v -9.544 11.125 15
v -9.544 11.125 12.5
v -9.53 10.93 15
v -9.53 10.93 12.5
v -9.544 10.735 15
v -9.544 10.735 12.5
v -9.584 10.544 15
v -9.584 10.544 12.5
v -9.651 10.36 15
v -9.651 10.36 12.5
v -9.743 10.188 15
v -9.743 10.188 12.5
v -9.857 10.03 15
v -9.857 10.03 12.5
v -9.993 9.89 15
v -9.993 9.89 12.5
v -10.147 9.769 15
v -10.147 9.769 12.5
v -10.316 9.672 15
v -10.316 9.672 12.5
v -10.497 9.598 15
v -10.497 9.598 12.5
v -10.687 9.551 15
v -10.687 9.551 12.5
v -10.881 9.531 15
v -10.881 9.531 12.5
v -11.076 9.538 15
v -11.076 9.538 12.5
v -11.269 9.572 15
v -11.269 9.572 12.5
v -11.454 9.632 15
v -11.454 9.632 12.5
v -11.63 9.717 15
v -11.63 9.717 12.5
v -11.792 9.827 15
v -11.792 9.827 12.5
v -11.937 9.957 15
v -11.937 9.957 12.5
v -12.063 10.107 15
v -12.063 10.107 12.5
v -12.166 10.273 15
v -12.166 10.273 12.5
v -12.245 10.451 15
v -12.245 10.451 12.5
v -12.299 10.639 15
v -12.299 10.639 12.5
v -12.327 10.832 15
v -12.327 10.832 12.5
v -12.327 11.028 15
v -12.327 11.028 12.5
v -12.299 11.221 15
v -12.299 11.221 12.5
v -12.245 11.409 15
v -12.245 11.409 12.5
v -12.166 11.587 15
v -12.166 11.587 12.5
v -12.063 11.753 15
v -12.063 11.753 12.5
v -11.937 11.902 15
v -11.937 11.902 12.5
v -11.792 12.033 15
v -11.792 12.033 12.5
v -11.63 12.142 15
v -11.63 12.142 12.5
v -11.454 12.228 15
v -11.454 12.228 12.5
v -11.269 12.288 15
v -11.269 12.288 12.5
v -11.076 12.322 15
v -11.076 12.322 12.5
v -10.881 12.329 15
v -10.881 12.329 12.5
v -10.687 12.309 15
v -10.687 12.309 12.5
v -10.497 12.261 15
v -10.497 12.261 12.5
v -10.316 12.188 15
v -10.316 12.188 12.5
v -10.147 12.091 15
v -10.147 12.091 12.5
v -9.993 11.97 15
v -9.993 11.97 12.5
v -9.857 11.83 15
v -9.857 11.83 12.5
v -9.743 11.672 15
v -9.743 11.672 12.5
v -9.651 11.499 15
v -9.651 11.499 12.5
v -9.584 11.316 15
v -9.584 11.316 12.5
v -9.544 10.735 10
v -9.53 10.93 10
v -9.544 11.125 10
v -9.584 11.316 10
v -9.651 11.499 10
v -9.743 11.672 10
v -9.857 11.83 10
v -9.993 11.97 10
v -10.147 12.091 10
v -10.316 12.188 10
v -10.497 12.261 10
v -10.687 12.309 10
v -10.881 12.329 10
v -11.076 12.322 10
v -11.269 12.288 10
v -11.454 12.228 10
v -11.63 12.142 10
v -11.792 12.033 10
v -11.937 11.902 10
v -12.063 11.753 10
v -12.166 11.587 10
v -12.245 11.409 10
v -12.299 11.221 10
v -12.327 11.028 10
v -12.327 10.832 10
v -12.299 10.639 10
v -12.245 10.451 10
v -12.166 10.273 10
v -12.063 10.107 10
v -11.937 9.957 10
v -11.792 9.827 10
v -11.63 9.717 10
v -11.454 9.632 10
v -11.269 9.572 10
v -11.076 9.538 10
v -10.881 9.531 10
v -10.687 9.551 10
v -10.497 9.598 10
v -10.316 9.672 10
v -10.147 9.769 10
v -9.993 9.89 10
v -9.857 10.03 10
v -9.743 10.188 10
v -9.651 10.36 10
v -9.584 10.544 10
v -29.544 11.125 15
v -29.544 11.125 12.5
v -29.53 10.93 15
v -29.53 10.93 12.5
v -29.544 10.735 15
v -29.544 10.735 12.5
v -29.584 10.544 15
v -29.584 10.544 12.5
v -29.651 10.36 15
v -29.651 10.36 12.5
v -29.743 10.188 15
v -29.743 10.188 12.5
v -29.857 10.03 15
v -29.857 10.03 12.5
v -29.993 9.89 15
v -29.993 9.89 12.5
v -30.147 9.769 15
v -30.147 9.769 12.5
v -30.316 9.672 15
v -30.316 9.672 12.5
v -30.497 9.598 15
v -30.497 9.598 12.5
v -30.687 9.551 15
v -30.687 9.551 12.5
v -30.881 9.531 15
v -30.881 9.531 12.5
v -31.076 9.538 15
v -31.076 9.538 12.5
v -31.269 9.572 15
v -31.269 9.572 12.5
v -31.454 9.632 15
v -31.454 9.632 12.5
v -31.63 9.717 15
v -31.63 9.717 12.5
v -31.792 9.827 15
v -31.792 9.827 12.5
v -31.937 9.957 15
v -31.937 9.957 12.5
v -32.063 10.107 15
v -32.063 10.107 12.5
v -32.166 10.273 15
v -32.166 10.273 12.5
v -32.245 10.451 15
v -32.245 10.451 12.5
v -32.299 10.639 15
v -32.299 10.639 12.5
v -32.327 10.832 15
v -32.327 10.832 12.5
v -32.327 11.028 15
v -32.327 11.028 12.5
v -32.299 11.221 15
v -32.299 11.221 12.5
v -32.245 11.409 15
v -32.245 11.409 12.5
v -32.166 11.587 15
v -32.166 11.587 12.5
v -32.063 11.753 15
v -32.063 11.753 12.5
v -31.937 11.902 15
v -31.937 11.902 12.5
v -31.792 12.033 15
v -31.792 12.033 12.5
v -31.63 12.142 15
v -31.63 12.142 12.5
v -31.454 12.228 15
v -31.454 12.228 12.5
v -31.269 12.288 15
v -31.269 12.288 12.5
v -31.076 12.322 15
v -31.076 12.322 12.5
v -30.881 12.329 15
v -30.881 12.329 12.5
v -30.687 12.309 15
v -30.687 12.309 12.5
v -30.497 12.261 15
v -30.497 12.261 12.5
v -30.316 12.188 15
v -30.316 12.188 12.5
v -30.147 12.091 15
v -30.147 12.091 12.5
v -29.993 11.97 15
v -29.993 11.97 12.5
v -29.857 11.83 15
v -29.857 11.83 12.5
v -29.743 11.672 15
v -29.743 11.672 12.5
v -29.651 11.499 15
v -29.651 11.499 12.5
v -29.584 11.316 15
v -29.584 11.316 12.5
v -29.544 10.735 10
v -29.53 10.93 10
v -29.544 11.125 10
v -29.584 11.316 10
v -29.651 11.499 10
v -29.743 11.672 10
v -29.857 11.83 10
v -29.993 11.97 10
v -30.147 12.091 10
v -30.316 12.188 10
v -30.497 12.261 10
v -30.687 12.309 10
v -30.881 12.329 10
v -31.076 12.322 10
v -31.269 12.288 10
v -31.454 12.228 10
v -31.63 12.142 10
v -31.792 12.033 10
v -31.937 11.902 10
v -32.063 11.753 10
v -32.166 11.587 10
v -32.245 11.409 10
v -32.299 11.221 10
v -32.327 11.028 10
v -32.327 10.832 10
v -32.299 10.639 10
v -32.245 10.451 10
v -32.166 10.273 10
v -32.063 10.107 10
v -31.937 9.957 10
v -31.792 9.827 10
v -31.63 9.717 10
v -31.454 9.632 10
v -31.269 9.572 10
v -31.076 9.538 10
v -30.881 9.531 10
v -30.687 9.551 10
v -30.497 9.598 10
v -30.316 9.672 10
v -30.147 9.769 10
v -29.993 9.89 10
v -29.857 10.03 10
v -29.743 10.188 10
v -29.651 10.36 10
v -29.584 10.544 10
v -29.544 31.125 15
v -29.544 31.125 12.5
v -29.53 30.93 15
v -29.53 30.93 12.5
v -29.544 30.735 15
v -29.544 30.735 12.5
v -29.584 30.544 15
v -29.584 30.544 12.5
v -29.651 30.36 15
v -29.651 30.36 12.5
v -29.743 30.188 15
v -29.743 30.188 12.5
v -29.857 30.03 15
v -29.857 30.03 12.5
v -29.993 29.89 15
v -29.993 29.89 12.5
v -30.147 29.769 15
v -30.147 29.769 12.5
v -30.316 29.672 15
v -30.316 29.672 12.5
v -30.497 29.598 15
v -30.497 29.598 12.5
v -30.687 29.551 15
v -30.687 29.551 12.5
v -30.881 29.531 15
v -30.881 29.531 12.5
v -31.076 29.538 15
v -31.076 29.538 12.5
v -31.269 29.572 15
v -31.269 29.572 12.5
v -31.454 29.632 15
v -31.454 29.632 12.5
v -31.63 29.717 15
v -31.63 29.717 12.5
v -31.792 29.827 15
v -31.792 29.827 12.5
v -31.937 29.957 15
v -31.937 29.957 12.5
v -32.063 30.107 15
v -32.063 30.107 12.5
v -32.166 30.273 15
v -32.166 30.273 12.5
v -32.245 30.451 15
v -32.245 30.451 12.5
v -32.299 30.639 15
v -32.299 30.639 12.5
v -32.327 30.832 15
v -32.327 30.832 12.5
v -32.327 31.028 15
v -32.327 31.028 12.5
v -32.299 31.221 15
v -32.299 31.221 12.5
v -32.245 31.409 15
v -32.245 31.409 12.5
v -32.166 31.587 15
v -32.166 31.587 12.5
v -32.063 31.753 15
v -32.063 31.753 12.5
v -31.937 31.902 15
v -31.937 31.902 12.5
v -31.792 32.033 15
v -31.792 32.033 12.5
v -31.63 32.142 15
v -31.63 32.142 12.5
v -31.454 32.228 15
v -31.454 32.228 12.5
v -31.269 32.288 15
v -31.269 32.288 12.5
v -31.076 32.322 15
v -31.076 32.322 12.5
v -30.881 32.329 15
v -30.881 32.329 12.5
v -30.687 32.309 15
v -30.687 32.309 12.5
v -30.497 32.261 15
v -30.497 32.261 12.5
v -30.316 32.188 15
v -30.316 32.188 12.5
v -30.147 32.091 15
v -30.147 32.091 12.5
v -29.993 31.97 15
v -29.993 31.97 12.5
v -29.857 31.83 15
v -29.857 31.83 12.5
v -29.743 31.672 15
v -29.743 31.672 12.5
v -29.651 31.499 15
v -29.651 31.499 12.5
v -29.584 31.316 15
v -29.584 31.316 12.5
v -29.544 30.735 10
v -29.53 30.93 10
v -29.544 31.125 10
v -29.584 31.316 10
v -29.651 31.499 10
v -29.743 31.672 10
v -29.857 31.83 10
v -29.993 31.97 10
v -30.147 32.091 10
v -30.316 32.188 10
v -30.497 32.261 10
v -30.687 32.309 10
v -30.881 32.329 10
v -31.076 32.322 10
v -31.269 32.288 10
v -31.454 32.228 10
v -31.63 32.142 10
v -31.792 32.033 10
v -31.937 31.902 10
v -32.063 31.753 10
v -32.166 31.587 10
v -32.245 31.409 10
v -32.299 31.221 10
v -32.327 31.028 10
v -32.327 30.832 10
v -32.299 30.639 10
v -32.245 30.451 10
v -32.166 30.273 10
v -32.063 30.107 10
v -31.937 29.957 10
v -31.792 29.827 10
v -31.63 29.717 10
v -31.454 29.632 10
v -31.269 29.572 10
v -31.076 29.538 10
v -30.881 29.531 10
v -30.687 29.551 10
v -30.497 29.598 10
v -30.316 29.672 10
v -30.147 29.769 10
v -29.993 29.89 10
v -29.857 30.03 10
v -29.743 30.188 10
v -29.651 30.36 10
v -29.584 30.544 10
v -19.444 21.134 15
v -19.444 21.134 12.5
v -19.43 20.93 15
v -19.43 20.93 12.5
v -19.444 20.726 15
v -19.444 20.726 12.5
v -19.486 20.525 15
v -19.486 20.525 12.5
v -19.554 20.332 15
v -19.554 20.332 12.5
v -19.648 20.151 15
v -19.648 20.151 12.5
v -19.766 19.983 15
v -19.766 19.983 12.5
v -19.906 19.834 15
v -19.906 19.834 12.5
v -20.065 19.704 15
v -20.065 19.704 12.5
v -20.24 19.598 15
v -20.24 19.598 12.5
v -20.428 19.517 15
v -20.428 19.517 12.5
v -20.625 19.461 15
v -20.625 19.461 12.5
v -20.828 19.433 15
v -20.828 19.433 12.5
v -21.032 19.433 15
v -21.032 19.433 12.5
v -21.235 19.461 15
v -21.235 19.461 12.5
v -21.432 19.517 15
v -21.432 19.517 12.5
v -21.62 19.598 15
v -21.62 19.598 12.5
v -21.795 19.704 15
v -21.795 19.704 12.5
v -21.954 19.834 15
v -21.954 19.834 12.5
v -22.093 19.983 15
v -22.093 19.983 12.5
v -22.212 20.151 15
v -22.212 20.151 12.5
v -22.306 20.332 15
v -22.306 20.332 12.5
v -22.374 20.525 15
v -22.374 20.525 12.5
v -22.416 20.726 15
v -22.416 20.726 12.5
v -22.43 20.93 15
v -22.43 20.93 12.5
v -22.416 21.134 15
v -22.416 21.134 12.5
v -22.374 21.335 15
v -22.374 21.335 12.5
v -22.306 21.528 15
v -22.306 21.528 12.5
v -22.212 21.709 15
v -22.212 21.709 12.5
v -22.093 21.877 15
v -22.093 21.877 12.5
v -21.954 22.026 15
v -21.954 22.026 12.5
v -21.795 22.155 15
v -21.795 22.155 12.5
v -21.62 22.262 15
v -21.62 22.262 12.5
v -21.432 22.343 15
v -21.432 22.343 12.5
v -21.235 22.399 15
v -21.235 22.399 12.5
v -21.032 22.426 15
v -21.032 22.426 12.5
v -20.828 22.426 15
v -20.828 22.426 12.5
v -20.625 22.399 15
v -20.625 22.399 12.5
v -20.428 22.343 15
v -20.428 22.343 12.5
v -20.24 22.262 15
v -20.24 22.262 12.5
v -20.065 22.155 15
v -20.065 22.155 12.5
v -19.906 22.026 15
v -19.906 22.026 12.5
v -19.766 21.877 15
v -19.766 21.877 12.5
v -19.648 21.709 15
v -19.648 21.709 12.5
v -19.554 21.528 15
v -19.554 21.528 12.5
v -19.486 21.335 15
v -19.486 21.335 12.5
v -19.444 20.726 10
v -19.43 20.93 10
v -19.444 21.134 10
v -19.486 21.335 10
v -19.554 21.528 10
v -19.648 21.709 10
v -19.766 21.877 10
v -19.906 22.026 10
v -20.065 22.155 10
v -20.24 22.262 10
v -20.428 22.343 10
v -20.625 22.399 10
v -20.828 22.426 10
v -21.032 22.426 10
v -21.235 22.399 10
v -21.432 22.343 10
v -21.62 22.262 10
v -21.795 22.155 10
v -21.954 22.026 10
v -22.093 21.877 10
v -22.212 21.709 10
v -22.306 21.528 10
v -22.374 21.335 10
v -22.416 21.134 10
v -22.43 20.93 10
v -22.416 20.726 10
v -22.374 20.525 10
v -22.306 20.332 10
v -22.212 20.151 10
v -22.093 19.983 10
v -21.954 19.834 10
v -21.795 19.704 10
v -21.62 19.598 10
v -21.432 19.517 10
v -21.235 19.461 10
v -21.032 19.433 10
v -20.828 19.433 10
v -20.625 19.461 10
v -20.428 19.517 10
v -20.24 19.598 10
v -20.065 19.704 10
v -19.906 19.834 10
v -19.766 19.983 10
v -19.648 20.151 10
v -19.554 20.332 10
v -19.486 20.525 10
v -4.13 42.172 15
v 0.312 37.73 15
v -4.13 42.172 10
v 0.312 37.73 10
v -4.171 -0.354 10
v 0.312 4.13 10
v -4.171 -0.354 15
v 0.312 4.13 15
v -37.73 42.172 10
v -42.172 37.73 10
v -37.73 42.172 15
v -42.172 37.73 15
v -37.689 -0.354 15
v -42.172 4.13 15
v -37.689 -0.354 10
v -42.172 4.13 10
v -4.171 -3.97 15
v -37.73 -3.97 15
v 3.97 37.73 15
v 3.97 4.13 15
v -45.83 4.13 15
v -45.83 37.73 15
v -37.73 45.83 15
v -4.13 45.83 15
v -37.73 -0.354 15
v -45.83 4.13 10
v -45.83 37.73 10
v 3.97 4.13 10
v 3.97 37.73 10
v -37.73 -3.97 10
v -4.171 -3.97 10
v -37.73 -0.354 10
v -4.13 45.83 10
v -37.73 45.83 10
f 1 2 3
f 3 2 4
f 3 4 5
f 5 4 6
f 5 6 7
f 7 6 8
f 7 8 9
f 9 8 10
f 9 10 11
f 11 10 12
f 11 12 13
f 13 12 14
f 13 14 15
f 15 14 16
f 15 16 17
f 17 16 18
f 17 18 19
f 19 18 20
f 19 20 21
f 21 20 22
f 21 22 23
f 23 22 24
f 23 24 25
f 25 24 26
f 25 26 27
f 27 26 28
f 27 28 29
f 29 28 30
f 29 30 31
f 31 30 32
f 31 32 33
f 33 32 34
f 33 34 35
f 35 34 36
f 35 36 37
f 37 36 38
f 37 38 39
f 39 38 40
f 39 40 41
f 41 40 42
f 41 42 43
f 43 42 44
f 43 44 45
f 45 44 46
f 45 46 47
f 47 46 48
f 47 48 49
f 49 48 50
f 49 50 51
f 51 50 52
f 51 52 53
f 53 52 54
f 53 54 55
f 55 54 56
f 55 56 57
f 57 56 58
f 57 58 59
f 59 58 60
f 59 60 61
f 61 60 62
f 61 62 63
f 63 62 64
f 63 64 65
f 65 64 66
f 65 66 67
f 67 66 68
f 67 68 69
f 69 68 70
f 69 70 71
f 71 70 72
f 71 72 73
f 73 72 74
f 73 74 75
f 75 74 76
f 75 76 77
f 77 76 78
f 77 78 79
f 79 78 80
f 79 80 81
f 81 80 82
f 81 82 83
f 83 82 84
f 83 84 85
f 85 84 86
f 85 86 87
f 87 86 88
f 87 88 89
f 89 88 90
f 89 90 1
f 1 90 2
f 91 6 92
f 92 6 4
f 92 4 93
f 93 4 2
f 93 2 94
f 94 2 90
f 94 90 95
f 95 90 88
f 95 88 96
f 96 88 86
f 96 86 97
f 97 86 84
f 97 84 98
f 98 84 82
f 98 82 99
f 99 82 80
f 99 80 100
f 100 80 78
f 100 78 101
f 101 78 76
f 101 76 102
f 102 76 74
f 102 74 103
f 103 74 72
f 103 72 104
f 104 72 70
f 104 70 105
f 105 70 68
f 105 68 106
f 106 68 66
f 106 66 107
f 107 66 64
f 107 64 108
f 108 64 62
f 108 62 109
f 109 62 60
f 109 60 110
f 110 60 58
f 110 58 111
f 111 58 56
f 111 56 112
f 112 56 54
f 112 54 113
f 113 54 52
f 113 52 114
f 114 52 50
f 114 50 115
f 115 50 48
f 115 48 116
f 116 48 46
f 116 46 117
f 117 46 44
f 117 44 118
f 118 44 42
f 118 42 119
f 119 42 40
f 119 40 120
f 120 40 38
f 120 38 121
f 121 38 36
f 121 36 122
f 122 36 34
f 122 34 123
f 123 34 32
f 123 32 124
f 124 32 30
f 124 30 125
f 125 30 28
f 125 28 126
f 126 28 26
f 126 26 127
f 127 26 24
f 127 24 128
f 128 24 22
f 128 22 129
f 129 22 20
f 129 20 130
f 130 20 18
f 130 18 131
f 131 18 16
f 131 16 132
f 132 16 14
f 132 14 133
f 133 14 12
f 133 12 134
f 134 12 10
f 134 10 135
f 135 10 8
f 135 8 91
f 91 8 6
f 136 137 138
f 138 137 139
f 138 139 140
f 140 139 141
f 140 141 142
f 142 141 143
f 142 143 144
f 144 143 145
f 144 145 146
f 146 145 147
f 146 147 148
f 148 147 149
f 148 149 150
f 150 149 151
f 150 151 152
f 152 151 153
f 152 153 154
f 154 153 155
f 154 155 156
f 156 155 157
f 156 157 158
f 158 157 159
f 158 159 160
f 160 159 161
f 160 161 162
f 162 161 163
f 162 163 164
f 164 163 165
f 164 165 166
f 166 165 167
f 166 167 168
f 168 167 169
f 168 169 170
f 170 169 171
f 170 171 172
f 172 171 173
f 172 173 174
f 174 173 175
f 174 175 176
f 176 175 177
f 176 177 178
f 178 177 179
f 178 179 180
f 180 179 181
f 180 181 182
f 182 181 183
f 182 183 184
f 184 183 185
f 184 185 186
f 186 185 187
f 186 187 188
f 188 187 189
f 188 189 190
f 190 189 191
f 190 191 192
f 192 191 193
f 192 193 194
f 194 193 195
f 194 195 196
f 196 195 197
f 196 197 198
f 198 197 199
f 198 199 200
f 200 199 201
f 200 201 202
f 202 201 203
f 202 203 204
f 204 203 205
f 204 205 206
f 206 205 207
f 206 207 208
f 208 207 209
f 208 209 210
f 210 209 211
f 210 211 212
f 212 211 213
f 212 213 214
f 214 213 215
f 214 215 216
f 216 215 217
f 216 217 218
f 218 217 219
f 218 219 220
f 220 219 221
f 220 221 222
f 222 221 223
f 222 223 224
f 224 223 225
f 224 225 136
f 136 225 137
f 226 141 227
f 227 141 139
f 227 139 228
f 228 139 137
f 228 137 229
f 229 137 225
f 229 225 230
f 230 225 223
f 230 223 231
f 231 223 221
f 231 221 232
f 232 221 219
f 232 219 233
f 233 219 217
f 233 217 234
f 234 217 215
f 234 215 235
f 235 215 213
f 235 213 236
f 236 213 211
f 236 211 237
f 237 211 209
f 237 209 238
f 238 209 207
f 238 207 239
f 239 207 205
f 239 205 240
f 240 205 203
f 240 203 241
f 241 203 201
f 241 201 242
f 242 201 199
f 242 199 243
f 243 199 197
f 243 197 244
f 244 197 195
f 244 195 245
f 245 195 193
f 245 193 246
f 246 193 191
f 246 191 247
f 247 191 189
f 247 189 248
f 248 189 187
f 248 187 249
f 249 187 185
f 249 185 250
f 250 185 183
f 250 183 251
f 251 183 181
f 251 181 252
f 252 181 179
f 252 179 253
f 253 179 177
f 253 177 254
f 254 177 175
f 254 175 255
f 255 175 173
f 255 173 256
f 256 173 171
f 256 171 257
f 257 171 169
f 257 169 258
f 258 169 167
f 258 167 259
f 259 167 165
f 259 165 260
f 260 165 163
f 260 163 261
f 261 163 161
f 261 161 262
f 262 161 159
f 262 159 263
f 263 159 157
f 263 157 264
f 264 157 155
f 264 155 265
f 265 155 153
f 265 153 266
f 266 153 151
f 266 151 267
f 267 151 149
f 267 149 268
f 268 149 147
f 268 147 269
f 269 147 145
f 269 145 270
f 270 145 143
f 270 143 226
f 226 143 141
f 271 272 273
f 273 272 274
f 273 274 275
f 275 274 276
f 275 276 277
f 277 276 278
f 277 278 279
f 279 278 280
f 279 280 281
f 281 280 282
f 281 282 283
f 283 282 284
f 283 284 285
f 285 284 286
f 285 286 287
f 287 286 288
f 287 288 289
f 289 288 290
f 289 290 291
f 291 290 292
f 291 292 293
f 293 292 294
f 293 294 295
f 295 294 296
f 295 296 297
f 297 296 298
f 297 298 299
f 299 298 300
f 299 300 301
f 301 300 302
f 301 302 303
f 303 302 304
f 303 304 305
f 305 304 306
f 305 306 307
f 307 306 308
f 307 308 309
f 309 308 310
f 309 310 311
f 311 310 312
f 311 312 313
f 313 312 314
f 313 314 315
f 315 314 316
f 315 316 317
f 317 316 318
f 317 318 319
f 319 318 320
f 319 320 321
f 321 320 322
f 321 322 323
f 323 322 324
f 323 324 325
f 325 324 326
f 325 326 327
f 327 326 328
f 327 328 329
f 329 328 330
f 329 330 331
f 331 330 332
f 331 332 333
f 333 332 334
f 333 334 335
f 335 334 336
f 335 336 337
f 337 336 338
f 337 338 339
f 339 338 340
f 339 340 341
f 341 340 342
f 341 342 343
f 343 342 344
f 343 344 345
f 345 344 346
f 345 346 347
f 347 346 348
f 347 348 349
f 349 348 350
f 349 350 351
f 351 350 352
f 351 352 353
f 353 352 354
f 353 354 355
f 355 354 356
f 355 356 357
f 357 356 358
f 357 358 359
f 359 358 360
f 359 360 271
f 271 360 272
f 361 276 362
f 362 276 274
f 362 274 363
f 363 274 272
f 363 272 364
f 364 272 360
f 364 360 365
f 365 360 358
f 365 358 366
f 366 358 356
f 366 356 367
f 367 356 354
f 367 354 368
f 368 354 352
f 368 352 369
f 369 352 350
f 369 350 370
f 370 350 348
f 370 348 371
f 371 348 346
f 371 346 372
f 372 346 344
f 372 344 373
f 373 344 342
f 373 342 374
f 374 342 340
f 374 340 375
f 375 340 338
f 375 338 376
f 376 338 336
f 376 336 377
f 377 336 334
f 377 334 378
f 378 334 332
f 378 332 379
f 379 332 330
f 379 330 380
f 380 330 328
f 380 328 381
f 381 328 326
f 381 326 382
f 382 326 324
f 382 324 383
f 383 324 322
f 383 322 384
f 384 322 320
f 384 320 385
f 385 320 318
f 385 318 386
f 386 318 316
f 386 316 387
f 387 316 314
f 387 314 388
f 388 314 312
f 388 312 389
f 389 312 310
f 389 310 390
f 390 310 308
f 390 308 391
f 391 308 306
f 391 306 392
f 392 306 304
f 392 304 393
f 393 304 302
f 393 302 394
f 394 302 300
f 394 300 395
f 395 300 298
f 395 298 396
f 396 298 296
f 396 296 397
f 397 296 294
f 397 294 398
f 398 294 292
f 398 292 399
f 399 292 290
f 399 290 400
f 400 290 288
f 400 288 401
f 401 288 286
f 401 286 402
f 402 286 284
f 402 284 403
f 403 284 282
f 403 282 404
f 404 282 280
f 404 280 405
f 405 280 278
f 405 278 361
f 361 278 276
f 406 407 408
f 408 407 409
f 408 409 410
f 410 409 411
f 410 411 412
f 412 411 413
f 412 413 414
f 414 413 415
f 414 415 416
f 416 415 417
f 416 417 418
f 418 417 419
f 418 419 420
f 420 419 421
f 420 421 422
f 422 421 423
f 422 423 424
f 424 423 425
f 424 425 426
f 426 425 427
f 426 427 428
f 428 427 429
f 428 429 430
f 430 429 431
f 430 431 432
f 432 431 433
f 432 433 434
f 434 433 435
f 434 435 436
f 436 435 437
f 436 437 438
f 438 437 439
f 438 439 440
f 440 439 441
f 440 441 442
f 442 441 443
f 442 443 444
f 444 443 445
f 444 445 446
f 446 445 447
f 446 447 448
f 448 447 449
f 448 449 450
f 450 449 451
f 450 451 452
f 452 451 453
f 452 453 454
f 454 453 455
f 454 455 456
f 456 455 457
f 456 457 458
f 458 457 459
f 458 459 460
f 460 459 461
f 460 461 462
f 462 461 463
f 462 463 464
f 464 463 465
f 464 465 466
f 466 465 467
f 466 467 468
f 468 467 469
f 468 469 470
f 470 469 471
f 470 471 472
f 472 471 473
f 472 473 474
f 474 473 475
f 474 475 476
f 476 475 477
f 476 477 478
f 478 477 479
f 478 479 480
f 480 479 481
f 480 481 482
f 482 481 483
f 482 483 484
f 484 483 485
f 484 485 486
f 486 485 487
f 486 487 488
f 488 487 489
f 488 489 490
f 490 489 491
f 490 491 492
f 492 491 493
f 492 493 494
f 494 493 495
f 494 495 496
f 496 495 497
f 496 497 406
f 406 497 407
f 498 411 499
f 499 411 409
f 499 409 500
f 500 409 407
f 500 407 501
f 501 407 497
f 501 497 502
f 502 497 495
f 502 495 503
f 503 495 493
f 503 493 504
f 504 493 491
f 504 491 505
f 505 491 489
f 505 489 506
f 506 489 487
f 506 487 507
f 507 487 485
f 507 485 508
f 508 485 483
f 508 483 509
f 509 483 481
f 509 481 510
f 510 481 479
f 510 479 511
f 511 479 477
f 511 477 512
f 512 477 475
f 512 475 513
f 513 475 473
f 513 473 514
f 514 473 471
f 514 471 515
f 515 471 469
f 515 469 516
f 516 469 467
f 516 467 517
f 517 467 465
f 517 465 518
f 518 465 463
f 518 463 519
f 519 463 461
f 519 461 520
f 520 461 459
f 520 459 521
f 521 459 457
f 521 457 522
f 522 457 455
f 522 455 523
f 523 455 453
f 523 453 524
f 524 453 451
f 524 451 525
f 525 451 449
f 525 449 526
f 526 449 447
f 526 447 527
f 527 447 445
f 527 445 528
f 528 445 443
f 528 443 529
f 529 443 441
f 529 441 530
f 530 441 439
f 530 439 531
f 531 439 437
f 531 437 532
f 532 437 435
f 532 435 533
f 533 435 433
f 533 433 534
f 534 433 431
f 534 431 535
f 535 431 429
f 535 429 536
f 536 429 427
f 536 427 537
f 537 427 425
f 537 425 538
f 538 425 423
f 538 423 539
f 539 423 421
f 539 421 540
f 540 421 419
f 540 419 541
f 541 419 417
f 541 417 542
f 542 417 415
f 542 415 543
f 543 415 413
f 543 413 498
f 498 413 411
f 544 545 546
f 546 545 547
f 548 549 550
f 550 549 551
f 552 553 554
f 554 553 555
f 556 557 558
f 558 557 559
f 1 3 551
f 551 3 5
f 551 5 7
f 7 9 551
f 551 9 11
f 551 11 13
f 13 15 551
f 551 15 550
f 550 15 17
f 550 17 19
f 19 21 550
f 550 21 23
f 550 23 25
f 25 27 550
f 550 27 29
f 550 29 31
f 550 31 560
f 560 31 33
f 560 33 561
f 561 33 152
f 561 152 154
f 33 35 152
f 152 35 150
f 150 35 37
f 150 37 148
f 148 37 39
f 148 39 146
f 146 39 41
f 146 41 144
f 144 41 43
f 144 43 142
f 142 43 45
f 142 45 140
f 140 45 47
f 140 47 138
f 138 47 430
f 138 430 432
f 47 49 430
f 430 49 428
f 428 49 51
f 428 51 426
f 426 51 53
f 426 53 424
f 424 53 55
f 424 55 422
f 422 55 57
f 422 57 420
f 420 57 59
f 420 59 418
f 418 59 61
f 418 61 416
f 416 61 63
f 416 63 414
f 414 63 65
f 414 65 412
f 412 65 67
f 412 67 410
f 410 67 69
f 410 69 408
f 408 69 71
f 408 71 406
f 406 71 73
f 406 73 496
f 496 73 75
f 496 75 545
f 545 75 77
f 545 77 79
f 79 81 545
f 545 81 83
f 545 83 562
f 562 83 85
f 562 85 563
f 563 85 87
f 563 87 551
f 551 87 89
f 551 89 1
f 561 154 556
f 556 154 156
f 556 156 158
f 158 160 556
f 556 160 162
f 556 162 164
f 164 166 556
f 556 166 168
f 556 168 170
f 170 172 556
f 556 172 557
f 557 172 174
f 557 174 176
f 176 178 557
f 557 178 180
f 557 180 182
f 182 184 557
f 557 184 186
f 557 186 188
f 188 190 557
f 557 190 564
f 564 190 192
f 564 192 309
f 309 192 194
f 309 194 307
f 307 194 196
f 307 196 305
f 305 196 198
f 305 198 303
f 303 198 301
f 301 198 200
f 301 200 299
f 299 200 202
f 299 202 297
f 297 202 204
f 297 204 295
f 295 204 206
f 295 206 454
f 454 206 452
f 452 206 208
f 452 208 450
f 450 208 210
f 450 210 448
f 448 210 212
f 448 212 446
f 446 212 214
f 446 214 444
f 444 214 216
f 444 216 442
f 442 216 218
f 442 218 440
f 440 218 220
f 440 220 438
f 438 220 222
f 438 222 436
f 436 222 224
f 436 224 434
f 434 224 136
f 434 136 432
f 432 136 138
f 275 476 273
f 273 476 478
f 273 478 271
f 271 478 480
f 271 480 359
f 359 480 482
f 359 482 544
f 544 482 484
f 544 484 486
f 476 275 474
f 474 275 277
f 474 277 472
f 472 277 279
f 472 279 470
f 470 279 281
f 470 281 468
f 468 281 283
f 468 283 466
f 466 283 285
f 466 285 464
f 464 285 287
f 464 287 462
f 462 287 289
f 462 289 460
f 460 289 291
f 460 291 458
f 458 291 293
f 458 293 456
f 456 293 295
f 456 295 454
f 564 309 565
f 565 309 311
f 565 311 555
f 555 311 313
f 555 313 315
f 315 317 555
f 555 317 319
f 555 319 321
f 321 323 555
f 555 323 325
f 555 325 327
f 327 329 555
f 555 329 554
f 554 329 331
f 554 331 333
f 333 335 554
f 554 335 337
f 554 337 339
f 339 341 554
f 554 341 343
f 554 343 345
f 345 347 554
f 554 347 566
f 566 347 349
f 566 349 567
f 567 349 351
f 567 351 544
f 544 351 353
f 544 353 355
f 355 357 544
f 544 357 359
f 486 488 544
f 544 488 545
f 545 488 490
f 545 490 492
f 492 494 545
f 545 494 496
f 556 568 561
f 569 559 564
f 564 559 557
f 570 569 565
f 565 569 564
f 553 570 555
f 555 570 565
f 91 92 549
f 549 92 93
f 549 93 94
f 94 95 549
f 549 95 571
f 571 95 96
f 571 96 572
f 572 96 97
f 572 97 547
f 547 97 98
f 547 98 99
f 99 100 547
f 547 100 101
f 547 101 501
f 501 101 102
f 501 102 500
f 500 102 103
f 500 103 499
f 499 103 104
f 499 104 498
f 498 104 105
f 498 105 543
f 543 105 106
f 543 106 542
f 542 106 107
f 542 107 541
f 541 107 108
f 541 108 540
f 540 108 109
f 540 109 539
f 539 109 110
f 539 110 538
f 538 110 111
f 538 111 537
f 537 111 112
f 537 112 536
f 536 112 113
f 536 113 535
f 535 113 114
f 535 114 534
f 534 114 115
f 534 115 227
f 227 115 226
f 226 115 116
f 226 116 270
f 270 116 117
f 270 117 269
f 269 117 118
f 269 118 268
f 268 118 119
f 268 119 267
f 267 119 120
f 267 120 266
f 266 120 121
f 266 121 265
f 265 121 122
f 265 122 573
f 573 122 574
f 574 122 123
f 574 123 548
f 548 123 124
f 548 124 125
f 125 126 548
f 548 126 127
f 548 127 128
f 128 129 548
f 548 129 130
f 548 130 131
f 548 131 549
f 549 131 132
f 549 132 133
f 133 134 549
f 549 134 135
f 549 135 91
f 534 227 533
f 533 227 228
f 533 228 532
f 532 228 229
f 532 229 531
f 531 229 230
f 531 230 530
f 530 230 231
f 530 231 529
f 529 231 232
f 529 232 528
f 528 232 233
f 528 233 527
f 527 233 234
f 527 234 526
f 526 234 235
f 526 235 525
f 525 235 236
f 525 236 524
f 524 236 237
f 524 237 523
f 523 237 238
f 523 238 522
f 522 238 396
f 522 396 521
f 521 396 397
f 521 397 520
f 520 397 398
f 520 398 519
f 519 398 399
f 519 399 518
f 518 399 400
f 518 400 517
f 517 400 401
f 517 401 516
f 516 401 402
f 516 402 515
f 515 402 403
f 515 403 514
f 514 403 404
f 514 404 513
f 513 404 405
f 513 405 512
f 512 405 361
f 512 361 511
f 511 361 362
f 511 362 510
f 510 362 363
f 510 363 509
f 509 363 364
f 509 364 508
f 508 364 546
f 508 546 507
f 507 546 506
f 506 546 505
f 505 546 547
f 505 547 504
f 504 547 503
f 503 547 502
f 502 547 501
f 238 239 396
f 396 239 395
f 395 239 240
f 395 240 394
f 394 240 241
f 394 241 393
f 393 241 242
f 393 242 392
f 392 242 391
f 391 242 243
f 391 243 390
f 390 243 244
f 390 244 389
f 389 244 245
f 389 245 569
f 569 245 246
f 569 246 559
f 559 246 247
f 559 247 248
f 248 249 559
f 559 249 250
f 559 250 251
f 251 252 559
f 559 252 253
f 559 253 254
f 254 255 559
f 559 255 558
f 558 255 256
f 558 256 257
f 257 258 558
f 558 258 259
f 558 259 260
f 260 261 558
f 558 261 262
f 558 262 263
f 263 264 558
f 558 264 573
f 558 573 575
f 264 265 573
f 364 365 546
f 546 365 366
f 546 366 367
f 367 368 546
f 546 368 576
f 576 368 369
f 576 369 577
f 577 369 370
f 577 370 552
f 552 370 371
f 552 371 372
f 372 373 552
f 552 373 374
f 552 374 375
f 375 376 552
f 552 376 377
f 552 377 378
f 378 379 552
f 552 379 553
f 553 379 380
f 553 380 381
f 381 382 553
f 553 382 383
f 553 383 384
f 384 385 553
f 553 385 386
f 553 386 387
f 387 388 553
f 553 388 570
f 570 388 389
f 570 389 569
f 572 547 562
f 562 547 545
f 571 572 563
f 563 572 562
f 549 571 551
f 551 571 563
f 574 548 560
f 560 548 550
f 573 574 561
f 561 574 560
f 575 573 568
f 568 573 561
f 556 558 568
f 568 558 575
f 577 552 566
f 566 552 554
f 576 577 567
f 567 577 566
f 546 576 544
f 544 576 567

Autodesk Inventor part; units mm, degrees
ref_plane "YZ Plane" through (0, 0, 0) normal (1, 0, 0) x (0, 1, 0)
ref_plane "XZ Plane" through (0, 0, 0) normal (0, 1, 0) x (-1, 0, 0)
ref_plane "XY Plane" through (0, 0, 0) normal (0, 0, 1) x (1, 0, 0)
ref_plane "Work Plane1" through (0, 0, 10) normal (0, 0, 1) x (1, 0, 0)
sketch "Sketch1" plane through (0, 0, 10) normal (0, 0, 1) x (1, 0, 0)
  line L0 (-4.0299, -0.3538) -> (-2.2322, 1.4439) construction
  arc A0 (-1.4439, 2.2322) -> (-2.2322, 1.4439) centre (-0.9299, 0.9299) ccw construction
  line L1 (-1.4439, 2.2322) -> (0.3538, 4.0299) construction
  line L2 (-37.8299, 42.8299) -> (-37.8299, 37.8299) construction
  line L3 (-37.8299, 37.8299) -> (-42.9208, 37.8299) construction
  line L4 (-37.8299, 42.2137) -> (-37.8299, 45.8299) construction
  line L5 (-37.8299, 45.8299) -> (-4.0299, 45.8299) construction
  line L6 (-4.0299, 45.8299) -> (-4.0299, 42.2137) construction
  line L7 (-4.0299, 4.0299) -> (0.3538, 4.0299) projected
  circle A1 centre (-20.9299, 20.9299) radius 17.5 projected
  line L8 (-20.9299, 58.9723) -> (17.1124, 20.9299) construction
  line L9 (17.1124, 20.9299) -> (-20.9299, -17.1124) construction
  line L10 (-20.9299, -17.1124) -> (-58.9723, 20.9299) construction
  line L11 (-58.9723, 20.9299) -> (-20.9299, 58.9723) construction
  line L12 (-20.9299, 58.9723) -> (-20.9299, -17.1124) construction
  line L13 (17.1124, 20.9299) -> (-58.9723, 20.9299) construction
  line L14 (-20.9299, 58.9723) -> (32.8701, 58.9723) construction
  line L15 (-43.4299, 43.4299) -> (1.5701, 43.4299) construction
  line L16 (1.5701, 43.4299) -> (1.5701, -1.5701) construction
  line L17 (1.5701, -1.5701) -> (-43.4299, -1.5701) construction
  line L18 (-43.4299, -1.5701) -> (-43.4299, 43.4299) construction
  line L19 (-43.4299, 43.4299) -> (1.5701, -1.5701) construction
  line L20 (1.5701, 43.4299) -> (-43.4299, -1.5701) construction
  line L21 (-43.4299, 5.3876) -> (-43.4299, 36.4723)
  line L22 (-43.4299, 36.4723) -> (-36.4723, 43.4299)
  line L23 (-36.4723, 43.4299) -> (-5.3876, 43.4299)
  line L24 (-5.3876, 43.4299) -> (1.5701, 36.4723)
  line L25 (1.5701, 36.4723) -> (1.5701, 5.3876)
  line L26 (1.5701, 5.3876) -> (-5.3876, -1.5701)
  line L27 (-5.3876, -1.5701) -> (-36.4723, -1.5701)
  line L28 (-36.4723, -1.5701) -> (-43.4299, 5.3876)
  line L29 (-4.0299, 42.2137) -> (-37.8299, 42.2137) projected
  line L30 (-4.0299, -0.3538) -> (-4.0299, 4.0299) projected
  circle A2 centre (-20.9299, 20.9299) radius 1.5
  line L31 (-10.9299, 10.9299) -> (-30.9299, 10.9299) construction
  line L32 (-30.9299, 10.9299) -> (-30.9299, 30.9299) construction
  line L33 (-30.9299, 30.9299) -> (-10.9299, 30.9299) construction
  line L34 (-10.9299, 30.9299) -> (-10.9299, 10.9299) construction
  line L35 (-10.9299, 10.9299) -> (-30.9299, 30.9299) construction
  line L36 (-30.9299, 10.9299) -> (-10.9299, 30.9299) construction
  circle A3 centre (-30.9299, 30.9299) radius 1.4
  circle A4 centre (-30.9299, 10.9299) radius 1.4
  circle A5 centre (-10.9299, 10.9299) radius 1.4
  line L37 (-45.8299, 37.8299) -> (-42.0723, 37.8299) construction
  line L38 (-42.1723, 37.7299) -> (-45.8299, 37.7299)
  line L39 (-45.8299, 37.7299) -> (-45.8299, 4.1299)
  line L40 (-45.8299, 4.1299) -> (-42.1723, 4.1299)
  line L41 (-42.1723, 4.1299) -> (-42.1723, 37.7299)
  line L42 (-45.8299, 4.0299) -> (-42.0723, 4.0299) construction
  line L43 (-45.8299, 37.8299) -> (-42.0723, 37.8299) projected
  line L44 (-37.7299, 45.8299) -> (-4.1299, 45.8299)
  line L45 (-4.1299, 45.8299) -> (-4.1299, 42.1723)
  line L46 (-4.1299, 42.1723) -> (-37.7299, 42.1723)
  line L47 (-37.7299, 42.1723) -> (-37.7299, 45.8299)
  line L48 (0.4701, 37.8299) -> (0.4701, 4.0299) construction
  line L49 (0.4701, 4.0299) -> (3.9701, 4.0299) construction
  line L50 (3.9701, 37.8299) -> (3.9701, 4.0299) construction
  line L51 (0.4701, 37.8299) -> (3.9701, 37.8299) construction
  line L52 (-45.8299, -3.9701) -> (-4.0299, -3.9701) construction
  line L53 (0.3124, 37.7299) -> (3.9701, 37.7299)
  line L54 (3.9701, 37.7299) -> (3.9701, 4.1299)
  line L55 (3.9701, 4.1299) -> (0.3124, 4.1299)
  line L56 (0.3124, 4.1299) -> (0.3124, 37.7299)
  line L57 (-4.1713, -0.3538) -> (-37.7299, -0.3538)
  line L58 (-37.7299, -0.3538) -> (-37.7299, -3.9701)
  line L59 (-37.7299, -3.9701) -> (-4.1713, -3.9701)
  line L60 (-4.1713, -3.9701) -> (-4.1713, -0.3538)
  point P0 (-37.8299, 4.0299)
  dimension "d18" = 53.8
  dimension "d19" = 45
  dimension "d20" = 53.8
  dimension "d21" = 45
  dimension "d22" = 45
  dimension "d30" = 20
  dimension "d31" = 20
  dimension "d32" = 2.8
  dimension "d33" = 2.8
  dimension "d34" = 2.8
  dimension "d35" = 3
  dimension "d36" = 0.1
  dimension "d37" = 0.1
  dimension "d38" = 0.1
  dimension "d39" = 0.1
extrude "Extrusion1" add sketch "Sketch1" along normal blind 5 contours L30 L26 L57 L28 L41 L22 L46 L24 L56 L7 | L7 L26 L30 | L56 L24 L25 L26 | L26 L25 L24 L53 L54 L55 | L60 L59 L58 L57 L28 L27 L26 | L26 L27 L28 L57 | L46 L22 L29 L24 | L24 L29 L45 | L40 L39 L38 L22 L21 L28 | L28 L21 L22 L41 | L29 L22 L23 L24 | L24 L23 L22 L29 L47 L44 L45 | L47 L29 L22 | A1
properties part number "20_Cube_Insert_Kinematic_Mirrormount_base"
